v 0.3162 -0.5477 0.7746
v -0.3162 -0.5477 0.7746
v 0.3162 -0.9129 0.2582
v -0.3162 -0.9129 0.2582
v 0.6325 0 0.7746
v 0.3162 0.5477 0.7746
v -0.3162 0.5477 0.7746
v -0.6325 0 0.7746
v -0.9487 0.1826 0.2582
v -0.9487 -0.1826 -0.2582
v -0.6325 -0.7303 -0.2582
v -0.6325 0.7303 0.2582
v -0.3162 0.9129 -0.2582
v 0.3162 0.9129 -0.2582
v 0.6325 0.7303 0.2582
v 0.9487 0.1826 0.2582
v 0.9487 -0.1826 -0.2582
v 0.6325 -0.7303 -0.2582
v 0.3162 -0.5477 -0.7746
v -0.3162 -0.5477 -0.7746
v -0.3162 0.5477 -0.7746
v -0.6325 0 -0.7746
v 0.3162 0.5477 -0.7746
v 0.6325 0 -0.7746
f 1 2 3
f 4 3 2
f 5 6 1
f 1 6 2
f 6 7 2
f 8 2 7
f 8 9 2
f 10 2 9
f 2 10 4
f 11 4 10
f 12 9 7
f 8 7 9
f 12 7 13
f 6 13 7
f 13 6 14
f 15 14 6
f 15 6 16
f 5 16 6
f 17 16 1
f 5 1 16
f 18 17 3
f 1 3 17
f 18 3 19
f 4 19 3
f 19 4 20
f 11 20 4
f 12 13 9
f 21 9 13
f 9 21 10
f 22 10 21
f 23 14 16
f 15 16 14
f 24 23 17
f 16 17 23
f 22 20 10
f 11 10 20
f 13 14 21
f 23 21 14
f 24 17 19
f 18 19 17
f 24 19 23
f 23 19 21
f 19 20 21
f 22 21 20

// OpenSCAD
polyhedron( points = [[-0.316227766033447, -0.547722557493928, 0.774596669227207], [-0.632455532051161, 8.84760227205742e-11, 0.774596669227207], [-0.316227765984265, 0.547722557528908, 0.774596669227207], [0.316227766018374, 0.547722557472113, 0.774596669227207], [0.632455531986908, -2.51041444991564e-11, 0.774596669227207], [0.316227765969194, -0.547722557493928, 0.774596669227207], [-0.316227766005051, -0.912870929173897, 0.258198889724324], [-0.94868329799312, 0.182574185939382, 0.258198889767454], [-0.632455531936404, 0.730296743344301, 0.258198889724324], [0.632455532077077, 0.730296743207058, 0.258198889791251], [0.948683297943437, 0.182574185782679, 0.258198889724324], [0.316227765947335, -0.912870929177671, 0.258198889718987], [-0.632455532033534, -0.730296743186802, -0.258198889754762], [-0.948683298001156, -0.182574185657507, -0.25819888970717], [-0.316227765853114, 0.912870929112367, -0.258198889805333], [0.316227766149526, 0.912870929027182, -0.258198889725018], [0.948683297874057, -0.182574185911486, -0.258198889805333], [0.632455531831754, -0.730296743366111, -0.258198889725018], [-0.316227766015963, -0.547722557331156, -0.774596669244244], [-0.632455532011979, 1.89993949176238e-10, -0.774596669156118], [-0.316227765808325, 0.54772255737629, -0.774596669255154], [0.316227766206314, 0.547722557316959, -0.77459666913827], [0.632455531766769, -1.01164525958735e-10, -0.774596669255154], [0.316227765956774, -0.547722557466957, -0.774596669242334]], faces = [[0, 6, 11, 5], [0, 5, 4, 3, 2, 1], [0, 1, 7, 13, 12, 6], [1, 2, 8, 7], [2, 3, 9, 15, 14, 8], [3, 4, 10, 9], [4, 5, 11, 17, 16, 10], [6, 12, 18, 23, 17, 11], [7, 8, 14, 20, 19, 13], [9, 10, 16, 22, 21, 15], [12, 13, 19, 18], [14, 15, 21, 20], [16, 17, 23, 22], [18, 19, 20, 21, 22, 23]]);
